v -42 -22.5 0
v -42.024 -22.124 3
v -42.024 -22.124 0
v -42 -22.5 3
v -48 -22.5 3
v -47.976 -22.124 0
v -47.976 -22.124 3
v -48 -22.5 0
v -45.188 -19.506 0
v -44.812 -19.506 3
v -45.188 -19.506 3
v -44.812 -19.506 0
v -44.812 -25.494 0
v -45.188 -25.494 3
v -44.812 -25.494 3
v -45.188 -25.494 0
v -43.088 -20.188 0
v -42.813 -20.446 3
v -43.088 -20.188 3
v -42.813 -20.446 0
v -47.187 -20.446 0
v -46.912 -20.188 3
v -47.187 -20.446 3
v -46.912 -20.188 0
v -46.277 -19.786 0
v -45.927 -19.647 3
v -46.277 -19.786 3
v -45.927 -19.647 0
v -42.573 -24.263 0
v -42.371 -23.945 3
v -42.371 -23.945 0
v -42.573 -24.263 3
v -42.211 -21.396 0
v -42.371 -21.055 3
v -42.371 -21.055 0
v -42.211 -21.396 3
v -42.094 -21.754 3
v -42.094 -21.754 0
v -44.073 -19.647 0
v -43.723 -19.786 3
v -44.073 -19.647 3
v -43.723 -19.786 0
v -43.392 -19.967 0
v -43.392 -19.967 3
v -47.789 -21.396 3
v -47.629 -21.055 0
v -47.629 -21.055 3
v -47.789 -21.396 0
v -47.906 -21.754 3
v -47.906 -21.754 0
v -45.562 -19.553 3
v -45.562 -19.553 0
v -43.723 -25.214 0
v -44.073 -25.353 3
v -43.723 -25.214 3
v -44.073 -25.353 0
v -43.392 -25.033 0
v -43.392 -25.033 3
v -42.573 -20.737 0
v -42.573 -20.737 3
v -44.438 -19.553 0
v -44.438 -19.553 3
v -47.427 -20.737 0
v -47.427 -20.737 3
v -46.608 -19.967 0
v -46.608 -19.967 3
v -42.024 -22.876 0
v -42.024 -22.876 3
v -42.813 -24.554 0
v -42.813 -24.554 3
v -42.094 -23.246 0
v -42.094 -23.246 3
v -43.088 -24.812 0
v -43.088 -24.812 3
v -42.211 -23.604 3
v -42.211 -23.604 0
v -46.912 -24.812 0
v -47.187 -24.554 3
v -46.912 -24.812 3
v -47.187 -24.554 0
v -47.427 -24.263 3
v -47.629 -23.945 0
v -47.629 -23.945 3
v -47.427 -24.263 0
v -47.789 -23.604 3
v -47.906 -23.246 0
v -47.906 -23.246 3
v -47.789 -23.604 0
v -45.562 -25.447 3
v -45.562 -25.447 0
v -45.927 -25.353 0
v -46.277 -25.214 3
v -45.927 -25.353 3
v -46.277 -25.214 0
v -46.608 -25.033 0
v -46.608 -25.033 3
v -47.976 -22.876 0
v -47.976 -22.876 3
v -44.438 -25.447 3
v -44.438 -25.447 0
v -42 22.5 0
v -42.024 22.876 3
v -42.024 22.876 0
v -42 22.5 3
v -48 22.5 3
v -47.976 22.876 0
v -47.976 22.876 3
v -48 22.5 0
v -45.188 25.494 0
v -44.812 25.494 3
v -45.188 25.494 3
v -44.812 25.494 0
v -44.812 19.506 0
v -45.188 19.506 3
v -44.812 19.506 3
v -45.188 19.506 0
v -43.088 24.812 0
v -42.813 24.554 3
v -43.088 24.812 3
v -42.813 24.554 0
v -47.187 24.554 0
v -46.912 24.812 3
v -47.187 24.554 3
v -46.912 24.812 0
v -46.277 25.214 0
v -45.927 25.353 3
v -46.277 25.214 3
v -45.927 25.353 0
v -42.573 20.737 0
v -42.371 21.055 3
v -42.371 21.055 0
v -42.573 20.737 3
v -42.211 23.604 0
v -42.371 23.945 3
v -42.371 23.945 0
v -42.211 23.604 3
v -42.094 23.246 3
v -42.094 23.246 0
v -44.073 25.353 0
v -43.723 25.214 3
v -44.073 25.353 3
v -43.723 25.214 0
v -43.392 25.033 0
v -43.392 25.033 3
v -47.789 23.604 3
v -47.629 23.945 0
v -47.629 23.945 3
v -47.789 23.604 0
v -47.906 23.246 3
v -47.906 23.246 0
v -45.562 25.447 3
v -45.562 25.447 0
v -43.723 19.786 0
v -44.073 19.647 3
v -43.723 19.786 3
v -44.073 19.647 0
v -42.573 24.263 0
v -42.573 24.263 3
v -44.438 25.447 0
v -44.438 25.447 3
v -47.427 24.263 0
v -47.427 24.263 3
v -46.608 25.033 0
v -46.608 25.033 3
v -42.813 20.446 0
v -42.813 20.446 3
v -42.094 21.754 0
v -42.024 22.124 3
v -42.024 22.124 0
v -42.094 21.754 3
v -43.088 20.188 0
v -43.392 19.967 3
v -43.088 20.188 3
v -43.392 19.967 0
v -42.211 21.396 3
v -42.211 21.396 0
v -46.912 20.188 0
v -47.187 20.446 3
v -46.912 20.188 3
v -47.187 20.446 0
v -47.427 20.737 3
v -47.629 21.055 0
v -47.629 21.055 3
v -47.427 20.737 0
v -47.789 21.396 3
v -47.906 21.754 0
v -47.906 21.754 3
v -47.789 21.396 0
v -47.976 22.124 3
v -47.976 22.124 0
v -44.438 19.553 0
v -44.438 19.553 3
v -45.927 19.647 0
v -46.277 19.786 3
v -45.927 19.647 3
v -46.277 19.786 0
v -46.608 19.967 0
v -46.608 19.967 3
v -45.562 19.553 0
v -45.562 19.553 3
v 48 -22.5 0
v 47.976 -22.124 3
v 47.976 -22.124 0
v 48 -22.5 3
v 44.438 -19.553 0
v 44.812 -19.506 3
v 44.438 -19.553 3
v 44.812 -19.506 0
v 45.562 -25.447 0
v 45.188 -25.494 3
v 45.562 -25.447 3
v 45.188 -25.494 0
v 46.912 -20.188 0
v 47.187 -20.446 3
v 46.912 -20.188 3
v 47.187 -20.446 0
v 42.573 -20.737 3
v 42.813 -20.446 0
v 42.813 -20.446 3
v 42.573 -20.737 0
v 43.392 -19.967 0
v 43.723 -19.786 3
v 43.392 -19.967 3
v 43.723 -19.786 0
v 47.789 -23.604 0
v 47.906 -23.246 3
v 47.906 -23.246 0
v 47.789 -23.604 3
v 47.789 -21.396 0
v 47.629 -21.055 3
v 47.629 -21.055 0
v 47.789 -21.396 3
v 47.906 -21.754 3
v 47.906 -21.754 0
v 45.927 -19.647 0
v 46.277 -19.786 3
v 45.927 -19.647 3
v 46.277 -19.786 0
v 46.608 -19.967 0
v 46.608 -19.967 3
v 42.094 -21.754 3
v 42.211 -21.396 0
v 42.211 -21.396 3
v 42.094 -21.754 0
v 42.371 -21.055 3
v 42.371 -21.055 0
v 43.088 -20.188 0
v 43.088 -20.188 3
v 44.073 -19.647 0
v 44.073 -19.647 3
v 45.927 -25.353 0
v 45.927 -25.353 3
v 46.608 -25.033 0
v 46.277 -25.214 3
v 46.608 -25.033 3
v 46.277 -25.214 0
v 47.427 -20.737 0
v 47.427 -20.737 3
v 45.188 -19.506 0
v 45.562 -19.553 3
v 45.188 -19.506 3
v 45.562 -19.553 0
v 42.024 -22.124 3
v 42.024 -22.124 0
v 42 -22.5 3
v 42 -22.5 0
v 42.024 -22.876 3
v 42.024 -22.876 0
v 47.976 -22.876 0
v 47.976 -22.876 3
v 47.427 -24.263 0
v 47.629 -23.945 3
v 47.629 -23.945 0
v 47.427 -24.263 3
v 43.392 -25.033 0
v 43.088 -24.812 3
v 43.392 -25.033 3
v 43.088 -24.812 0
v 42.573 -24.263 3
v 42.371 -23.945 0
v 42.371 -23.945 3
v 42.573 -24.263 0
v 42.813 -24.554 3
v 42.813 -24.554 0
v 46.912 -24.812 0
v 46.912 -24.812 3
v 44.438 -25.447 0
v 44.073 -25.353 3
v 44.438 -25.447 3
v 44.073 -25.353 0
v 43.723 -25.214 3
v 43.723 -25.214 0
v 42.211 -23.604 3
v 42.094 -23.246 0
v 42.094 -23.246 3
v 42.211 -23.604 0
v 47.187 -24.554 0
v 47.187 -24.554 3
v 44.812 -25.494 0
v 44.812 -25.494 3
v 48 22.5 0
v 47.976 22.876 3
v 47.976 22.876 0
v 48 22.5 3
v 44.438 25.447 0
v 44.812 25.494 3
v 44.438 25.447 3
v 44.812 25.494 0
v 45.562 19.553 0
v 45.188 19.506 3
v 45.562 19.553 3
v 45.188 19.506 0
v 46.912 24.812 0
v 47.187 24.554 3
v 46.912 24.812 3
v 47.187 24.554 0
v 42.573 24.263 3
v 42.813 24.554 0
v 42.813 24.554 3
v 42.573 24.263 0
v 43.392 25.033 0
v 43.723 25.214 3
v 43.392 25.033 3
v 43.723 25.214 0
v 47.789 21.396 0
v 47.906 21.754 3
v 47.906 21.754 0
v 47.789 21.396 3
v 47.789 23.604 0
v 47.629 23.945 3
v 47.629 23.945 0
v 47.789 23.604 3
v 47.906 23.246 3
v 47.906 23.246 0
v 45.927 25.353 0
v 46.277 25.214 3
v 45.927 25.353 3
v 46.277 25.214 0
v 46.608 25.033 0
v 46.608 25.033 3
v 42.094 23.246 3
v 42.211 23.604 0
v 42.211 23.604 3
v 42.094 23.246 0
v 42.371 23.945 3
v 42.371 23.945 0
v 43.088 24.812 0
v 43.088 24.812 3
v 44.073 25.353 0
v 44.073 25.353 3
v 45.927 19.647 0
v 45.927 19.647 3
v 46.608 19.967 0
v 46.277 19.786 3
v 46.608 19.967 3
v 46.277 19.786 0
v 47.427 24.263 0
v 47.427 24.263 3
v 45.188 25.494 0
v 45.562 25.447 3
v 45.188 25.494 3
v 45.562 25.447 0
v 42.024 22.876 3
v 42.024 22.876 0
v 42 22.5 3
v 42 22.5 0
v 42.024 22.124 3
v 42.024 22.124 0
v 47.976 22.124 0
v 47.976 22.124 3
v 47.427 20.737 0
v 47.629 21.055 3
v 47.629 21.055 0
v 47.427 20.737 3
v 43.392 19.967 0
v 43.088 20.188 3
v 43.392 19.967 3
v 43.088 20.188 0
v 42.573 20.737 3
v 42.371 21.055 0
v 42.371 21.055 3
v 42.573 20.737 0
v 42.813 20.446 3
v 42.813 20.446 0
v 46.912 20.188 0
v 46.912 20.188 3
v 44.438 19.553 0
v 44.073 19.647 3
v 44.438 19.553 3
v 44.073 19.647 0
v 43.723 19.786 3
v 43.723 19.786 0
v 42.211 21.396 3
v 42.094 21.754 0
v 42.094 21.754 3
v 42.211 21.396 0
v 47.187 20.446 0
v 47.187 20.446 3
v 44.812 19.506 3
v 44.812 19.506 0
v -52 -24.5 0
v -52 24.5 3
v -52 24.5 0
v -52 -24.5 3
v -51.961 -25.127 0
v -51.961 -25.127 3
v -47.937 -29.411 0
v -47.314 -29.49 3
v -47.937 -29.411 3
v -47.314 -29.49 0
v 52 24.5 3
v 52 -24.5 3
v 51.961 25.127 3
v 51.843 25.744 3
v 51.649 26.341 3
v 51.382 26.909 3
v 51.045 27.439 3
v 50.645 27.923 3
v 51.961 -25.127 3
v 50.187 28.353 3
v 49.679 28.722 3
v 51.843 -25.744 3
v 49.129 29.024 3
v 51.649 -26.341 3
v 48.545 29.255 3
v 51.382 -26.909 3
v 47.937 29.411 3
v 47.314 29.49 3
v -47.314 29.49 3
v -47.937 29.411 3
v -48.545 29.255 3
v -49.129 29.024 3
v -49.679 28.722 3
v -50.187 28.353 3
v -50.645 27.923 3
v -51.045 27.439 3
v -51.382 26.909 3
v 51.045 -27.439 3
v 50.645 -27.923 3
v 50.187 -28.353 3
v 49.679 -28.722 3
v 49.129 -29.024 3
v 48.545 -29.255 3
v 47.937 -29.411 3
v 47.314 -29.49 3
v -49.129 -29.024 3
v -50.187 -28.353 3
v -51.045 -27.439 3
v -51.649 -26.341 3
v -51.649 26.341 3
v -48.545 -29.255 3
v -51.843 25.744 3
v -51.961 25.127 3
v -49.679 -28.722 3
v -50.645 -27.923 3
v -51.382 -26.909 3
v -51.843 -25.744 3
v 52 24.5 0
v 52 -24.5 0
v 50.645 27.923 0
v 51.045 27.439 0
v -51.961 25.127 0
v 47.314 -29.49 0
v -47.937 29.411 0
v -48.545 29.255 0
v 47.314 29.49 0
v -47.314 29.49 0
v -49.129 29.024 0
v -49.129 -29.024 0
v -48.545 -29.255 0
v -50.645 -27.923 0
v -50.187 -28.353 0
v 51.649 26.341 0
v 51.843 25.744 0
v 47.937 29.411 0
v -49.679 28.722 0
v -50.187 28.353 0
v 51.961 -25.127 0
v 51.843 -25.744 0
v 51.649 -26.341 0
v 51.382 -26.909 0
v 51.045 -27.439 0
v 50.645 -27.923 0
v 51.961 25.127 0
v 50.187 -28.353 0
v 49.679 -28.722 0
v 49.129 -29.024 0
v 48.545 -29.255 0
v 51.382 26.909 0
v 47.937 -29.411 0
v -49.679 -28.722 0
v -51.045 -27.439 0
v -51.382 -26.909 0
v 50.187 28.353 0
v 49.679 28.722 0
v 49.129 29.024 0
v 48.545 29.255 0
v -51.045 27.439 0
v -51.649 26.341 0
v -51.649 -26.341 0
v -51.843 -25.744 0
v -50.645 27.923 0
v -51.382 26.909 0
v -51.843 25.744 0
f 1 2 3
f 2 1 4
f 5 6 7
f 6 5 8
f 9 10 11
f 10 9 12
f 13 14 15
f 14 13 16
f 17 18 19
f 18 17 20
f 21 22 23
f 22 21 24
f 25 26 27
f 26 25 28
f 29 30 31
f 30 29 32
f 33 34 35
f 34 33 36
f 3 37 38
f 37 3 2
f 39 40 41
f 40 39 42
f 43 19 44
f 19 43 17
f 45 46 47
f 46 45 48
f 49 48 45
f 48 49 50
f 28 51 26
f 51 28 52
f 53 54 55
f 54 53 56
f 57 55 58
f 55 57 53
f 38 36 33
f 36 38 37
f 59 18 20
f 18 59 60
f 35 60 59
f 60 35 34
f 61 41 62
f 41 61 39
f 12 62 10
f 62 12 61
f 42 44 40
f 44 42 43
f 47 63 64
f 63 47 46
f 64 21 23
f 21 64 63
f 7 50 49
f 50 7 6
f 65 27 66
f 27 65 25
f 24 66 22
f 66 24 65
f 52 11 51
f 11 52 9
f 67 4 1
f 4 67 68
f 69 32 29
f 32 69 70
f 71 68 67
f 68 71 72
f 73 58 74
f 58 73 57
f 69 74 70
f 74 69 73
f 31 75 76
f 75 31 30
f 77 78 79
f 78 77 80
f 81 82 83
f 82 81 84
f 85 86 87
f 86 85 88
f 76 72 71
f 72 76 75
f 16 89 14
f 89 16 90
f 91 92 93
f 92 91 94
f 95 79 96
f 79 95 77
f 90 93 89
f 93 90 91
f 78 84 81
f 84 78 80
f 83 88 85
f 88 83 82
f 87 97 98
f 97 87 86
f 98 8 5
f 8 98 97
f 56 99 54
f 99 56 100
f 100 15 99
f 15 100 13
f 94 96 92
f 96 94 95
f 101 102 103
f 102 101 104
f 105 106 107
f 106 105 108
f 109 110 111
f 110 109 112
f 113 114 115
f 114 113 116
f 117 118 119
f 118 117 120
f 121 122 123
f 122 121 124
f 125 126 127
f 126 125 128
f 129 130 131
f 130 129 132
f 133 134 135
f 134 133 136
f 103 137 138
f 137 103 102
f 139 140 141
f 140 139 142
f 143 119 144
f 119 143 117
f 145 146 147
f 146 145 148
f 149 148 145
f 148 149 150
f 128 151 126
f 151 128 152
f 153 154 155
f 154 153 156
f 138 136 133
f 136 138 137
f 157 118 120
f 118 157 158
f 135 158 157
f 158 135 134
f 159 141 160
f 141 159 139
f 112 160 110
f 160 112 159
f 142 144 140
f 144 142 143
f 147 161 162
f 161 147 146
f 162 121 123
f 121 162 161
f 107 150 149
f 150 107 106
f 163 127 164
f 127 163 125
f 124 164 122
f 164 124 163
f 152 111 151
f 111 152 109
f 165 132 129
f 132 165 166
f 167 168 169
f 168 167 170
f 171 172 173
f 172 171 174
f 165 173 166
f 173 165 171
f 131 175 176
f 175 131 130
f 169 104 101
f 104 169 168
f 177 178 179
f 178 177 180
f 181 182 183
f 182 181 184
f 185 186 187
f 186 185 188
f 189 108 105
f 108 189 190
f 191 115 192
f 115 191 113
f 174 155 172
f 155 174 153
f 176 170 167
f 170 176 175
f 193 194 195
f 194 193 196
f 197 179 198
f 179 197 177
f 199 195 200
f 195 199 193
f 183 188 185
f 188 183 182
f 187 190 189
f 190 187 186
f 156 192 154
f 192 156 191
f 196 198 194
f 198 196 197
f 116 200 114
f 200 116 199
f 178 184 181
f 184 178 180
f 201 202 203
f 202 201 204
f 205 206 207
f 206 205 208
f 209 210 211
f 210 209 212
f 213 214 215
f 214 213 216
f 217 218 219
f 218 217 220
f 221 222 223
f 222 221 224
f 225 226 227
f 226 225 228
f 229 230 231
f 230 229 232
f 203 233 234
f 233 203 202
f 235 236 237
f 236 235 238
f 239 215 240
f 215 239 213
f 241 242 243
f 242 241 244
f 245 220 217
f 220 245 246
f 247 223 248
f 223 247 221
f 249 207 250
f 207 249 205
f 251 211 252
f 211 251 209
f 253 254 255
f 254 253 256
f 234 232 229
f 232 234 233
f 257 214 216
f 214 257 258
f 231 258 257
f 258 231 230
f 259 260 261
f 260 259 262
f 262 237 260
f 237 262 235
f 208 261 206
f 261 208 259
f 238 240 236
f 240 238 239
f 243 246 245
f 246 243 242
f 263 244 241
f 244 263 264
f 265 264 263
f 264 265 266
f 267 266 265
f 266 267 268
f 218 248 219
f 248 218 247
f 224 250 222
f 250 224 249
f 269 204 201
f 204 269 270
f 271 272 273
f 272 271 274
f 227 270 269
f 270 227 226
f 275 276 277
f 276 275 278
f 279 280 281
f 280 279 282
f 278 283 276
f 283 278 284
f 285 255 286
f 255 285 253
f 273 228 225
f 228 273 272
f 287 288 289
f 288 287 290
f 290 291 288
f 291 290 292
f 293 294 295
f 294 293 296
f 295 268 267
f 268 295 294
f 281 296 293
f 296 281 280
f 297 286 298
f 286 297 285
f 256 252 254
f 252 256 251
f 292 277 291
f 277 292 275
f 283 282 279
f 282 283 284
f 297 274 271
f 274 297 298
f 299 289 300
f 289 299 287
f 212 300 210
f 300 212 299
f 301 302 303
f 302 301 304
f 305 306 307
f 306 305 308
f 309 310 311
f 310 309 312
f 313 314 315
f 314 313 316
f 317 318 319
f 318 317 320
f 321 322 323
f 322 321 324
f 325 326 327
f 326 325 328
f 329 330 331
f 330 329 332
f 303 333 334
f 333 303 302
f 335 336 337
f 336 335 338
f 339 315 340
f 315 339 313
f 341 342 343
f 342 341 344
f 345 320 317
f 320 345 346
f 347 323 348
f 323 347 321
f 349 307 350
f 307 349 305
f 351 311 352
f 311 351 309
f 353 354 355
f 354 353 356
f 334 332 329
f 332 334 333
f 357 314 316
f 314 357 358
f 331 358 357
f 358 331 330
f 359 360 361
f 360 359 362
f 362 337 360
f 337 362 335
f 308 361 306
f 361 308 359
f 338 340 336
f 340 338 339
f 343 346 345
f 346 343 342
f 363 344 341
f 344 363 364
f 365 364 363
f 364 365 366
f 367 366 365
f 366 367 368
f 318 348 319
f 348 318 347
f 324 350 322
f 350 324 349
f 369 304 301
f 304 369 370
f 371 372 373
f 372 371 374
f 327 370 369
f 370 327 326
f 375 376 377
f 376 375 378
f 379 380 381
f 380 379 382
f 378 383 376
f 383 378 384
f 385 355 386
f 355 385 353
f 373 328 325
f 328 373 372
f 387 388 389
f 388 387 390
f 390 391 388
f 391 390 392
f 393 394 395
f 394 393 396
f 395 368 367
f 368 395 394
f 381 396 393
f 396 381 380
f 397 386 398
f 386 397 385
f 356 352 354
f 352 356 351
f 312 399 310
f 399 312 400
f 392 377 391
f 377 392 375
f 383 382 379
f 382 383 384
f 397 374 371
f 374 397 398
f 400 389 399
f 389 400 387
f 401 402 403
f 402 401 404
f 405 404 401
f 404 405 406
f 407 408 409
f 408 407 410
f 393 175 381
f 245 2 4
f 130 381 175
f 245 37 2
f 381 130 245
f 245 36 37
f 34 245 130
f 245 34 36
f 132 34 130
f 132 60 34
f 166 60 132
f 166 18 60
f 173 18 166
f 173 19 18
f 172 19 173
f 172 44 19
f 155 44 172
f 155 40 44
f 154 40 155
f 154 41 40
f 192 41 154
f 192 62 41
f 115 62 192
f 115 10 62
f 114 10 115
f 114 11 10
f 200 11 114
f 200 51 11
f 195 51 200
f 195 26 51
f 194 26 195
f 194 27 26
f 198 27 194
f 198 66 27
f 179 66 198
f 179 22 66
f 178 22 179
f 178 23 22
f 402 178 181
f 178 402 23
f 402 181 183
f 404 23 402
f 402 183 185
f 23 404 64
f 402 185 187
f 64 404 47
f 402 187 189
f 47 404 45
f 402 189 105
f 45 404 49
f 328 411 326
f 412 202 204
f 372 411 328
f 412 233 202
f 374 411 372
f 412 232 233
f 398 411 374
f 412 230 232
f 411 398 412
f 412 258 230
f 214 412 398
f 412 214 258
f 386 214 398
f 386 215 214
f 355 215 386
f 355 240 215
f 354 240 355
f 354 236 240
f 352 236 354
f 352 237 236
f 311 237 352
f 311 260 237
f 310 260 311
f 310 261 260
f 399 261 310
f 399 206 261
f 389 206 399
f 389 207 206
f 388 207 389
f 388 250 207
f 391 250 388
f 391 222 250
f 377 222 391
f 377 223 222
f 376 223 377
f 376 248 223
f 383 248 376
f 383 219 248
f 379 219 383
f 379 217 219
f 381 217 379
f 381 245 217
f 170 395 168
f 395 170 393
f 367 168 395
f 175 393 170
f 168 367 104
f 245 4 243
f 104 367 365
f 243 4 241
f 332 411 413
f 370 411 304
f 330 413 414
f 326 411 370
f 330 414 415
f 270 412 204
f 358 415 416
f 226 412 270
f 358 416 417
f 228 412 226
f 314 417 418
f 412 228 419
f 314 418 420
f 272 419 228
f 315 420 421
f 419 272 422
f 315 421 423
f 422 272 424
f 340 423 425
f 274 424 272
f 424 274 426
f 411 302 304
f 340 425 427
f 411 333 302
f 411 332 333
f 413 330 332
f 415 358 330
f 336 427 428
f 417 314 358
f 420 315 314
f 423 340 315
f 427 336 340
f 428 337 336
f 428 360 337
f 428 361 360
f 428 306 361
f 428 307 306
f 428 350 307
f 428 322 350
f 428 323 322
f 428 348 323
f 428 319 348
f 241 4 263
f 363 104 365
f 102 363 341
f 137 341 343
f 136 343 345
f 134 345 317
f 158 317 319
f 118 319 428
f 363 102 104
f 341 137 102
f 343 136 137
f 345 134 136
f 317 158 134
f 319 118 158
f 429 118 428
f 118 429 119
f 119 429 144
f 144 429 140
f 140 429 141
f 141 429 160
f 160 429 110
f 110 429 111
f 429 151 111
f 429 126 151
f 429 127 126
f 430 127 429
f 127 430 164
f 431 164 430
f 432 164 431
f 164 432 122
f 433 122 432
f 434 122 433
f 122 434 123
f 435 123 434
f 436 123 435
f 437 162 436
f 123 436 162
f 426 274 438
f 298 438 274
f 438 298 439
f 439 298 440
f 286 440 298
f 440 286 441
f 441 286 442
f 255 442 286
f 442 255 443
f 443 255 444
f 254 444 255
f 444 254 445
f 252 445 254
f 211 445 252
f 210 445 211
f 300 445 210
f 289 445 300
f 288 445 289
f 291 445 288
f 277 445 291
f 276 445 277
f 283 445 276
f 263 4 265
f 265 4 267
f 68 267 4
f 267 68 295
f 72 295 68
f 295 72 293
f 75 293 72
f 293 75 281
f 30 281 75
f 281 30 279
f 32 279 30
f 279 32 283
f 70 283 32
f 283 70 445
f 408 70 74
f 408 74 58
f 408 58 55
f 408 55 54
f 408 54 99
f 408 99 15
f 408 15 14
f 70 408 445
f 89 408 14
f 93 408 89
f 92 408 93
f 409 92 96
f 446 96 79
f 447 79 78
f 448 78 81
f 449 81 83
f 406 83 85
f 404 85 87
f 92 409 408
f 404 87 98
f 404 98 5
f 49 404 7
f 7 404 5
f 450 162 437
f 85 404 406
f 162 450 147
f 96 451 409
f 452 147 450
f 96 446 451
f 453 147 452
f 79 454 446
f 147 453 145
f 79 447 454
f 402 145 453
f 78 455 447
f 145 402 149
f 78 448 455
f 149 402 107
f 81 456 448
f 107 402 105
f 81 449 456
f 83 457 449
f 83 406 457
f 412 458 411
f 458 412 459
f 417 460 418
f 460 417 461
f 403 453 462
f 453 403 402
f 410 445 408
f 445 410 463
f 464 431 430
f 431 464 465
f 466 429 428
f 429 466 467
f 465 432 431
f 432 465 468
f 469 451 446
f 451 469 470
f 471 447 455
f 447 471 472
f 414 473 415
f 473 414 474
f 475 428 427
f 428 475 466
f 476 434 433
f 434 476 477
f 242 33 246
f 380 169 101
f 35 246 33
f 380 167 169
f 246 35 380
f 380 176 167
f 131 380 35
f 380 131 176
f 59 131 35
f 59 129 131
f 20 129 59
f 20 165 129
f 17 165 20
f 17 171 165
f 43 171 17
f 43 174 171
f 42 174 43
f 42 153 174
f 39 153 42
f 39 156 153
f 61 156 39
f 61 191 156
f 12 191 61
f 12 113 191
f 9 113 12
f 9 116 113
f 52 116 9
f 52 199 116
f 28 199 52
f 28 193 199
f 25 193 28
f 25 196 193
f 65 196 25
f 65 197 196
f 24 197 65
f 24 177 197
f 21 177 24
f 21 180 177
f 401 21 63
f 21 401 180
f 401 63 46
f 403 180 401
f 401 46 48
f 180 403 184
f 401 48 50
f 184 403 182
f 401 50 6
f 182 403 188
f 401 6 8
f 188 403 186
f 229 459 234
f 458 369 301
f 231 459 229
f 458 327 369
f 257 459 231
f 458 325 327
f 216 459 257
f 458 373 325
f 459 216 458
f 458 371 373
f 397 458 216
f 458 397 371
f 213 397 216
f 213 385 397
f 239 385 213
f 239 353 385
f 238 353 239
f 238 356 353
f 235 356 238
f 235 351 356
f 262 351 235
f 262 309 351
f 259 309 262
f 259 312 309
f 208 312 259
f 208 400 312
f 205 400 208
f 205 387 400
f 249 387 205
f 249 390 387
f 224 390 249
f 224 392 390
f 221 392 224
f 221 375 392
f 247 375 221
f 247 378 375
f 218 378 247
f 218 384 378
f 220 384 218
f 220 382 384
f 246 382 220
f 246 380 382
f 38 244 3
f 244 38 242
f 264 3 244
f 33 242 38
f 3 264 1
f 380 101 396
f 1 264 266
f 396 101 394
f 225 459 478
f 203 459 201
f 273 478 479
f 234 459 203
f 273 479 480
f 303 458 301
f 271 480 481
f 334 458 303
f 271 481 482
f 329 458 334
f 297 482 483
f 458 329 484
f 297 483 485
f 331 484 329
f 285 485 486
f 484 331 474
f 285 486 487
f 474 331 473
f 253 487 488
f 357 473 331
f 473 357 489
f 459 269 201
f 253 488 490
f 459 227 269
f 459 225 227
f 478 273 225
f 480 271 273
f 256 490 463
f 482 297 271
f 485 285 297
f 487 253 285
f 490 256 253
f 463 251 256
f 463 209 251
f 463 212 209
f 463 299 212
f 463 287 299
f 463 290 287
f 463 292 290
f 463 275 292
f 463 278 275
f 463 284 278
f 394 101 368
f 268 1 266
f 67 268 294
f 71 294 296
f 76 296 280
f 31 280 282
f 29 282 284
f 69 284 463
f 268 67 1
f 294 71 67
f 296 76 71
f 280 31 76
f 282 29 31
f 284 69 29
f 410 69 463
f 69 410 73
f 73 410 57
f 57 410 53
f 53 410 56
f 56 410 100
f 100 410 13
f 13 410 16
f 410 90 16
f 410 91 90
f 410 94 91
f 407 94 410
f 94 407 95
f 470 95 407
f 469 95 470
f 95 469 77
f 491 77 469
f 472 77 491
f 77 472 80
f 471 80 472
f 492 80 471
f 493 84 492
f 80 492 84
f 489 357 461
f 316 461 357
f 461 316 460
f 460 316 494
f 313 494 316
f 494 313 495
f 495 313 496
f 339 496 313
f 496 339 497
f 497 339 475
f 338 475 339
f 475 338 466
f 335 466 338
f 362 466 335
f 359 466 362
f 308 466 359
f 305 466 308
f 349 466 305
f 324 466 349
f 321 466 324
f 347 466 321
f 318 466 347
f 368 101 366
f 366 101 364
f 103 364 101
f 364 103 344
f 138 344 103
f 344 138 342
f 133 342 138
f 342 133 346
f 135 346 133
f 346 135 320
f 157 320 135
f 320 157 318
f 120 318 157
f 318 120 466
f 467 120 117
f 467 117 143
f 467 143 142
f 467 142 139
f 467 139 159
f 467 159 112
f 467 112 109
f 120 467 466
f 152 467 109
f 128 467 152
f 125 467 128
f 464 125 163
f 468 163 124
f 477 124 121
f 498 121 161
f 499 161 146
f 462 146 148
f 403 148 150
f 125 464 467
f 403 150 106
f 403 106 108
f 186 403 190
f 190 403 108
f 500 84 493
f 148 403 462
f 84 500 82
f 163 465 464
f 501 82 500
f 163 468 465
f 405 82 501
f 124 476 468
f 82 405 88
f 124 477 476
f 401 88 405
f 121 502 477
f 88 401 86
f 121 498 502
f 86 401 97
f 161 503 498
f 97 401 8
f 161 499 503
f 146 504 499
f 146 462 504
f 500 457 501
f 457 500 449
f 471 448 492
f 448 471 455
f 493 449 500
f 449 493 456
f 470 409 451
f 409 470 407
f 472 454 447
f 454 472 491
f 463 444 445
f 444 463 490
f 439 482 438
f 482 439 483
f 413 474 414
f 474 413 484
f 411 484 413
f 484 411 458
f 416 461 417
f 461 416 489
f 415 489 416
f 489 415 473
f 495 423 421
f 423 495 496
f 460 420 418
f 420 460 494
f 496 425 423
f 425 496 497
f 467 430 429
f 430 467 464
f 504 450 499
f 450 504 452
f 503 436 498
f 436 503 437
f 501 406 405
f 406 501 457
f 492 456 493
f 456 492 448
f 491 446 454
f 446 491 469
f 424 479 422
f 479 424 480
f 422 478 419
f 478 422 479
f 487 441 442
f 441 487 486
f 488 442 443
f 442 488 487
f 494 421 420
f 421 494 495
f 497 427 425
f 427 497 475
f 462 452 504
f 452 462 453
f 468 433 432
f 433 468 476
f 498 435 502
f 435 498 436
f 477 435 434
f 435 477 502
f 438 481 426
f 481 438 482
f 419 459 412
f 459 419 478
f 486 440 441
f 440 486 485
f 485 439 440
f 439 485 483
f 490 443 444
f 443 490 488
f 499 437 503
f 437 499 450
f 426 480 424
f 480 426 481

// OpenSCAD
$fn = 50;


difference() {
	union() {
		hull() {
			translate(v = [-47.0000000000, 24.5000000000, 0]) {
				cylinder(h = 3, r = 5);
			}
			translate(v = [47.0000000000, 24.5000000000, 0]) {
				cylinder(h = 3, r = 5);
			}
			translate(v = [-47.0000000000, -24.5000000000, 0]) {
				cylinder(h = 3, r = 5);
			}
			translate(v = [47.0000000000, -24.5000000000, 0]) {
				cylinder(h = 3, r = 5);
			}
		}
	}
	union() {
		translate(v = [-45.0000000000, -22.5000000000, -100.0000000000]) {
			cylinder(h = 200, r = 3.0000000000);
		}
		translate(v = [-45.0000000000, 22.5000000000, -100.0000000000]) {
			cylinder(h = 200, r = 3.0000000000);
		}
		translate(v = [45.0000000000, -22.5000000000, -100.0000000000]) {
			cylinder(h = 200, r = 3.0000000000);
		}
		translate(v = [45.0000000000, 22.5000000000, -100.0000000000]) {
			cylinder(h = 200, r = 3.0000000000);
		}
	}
}
